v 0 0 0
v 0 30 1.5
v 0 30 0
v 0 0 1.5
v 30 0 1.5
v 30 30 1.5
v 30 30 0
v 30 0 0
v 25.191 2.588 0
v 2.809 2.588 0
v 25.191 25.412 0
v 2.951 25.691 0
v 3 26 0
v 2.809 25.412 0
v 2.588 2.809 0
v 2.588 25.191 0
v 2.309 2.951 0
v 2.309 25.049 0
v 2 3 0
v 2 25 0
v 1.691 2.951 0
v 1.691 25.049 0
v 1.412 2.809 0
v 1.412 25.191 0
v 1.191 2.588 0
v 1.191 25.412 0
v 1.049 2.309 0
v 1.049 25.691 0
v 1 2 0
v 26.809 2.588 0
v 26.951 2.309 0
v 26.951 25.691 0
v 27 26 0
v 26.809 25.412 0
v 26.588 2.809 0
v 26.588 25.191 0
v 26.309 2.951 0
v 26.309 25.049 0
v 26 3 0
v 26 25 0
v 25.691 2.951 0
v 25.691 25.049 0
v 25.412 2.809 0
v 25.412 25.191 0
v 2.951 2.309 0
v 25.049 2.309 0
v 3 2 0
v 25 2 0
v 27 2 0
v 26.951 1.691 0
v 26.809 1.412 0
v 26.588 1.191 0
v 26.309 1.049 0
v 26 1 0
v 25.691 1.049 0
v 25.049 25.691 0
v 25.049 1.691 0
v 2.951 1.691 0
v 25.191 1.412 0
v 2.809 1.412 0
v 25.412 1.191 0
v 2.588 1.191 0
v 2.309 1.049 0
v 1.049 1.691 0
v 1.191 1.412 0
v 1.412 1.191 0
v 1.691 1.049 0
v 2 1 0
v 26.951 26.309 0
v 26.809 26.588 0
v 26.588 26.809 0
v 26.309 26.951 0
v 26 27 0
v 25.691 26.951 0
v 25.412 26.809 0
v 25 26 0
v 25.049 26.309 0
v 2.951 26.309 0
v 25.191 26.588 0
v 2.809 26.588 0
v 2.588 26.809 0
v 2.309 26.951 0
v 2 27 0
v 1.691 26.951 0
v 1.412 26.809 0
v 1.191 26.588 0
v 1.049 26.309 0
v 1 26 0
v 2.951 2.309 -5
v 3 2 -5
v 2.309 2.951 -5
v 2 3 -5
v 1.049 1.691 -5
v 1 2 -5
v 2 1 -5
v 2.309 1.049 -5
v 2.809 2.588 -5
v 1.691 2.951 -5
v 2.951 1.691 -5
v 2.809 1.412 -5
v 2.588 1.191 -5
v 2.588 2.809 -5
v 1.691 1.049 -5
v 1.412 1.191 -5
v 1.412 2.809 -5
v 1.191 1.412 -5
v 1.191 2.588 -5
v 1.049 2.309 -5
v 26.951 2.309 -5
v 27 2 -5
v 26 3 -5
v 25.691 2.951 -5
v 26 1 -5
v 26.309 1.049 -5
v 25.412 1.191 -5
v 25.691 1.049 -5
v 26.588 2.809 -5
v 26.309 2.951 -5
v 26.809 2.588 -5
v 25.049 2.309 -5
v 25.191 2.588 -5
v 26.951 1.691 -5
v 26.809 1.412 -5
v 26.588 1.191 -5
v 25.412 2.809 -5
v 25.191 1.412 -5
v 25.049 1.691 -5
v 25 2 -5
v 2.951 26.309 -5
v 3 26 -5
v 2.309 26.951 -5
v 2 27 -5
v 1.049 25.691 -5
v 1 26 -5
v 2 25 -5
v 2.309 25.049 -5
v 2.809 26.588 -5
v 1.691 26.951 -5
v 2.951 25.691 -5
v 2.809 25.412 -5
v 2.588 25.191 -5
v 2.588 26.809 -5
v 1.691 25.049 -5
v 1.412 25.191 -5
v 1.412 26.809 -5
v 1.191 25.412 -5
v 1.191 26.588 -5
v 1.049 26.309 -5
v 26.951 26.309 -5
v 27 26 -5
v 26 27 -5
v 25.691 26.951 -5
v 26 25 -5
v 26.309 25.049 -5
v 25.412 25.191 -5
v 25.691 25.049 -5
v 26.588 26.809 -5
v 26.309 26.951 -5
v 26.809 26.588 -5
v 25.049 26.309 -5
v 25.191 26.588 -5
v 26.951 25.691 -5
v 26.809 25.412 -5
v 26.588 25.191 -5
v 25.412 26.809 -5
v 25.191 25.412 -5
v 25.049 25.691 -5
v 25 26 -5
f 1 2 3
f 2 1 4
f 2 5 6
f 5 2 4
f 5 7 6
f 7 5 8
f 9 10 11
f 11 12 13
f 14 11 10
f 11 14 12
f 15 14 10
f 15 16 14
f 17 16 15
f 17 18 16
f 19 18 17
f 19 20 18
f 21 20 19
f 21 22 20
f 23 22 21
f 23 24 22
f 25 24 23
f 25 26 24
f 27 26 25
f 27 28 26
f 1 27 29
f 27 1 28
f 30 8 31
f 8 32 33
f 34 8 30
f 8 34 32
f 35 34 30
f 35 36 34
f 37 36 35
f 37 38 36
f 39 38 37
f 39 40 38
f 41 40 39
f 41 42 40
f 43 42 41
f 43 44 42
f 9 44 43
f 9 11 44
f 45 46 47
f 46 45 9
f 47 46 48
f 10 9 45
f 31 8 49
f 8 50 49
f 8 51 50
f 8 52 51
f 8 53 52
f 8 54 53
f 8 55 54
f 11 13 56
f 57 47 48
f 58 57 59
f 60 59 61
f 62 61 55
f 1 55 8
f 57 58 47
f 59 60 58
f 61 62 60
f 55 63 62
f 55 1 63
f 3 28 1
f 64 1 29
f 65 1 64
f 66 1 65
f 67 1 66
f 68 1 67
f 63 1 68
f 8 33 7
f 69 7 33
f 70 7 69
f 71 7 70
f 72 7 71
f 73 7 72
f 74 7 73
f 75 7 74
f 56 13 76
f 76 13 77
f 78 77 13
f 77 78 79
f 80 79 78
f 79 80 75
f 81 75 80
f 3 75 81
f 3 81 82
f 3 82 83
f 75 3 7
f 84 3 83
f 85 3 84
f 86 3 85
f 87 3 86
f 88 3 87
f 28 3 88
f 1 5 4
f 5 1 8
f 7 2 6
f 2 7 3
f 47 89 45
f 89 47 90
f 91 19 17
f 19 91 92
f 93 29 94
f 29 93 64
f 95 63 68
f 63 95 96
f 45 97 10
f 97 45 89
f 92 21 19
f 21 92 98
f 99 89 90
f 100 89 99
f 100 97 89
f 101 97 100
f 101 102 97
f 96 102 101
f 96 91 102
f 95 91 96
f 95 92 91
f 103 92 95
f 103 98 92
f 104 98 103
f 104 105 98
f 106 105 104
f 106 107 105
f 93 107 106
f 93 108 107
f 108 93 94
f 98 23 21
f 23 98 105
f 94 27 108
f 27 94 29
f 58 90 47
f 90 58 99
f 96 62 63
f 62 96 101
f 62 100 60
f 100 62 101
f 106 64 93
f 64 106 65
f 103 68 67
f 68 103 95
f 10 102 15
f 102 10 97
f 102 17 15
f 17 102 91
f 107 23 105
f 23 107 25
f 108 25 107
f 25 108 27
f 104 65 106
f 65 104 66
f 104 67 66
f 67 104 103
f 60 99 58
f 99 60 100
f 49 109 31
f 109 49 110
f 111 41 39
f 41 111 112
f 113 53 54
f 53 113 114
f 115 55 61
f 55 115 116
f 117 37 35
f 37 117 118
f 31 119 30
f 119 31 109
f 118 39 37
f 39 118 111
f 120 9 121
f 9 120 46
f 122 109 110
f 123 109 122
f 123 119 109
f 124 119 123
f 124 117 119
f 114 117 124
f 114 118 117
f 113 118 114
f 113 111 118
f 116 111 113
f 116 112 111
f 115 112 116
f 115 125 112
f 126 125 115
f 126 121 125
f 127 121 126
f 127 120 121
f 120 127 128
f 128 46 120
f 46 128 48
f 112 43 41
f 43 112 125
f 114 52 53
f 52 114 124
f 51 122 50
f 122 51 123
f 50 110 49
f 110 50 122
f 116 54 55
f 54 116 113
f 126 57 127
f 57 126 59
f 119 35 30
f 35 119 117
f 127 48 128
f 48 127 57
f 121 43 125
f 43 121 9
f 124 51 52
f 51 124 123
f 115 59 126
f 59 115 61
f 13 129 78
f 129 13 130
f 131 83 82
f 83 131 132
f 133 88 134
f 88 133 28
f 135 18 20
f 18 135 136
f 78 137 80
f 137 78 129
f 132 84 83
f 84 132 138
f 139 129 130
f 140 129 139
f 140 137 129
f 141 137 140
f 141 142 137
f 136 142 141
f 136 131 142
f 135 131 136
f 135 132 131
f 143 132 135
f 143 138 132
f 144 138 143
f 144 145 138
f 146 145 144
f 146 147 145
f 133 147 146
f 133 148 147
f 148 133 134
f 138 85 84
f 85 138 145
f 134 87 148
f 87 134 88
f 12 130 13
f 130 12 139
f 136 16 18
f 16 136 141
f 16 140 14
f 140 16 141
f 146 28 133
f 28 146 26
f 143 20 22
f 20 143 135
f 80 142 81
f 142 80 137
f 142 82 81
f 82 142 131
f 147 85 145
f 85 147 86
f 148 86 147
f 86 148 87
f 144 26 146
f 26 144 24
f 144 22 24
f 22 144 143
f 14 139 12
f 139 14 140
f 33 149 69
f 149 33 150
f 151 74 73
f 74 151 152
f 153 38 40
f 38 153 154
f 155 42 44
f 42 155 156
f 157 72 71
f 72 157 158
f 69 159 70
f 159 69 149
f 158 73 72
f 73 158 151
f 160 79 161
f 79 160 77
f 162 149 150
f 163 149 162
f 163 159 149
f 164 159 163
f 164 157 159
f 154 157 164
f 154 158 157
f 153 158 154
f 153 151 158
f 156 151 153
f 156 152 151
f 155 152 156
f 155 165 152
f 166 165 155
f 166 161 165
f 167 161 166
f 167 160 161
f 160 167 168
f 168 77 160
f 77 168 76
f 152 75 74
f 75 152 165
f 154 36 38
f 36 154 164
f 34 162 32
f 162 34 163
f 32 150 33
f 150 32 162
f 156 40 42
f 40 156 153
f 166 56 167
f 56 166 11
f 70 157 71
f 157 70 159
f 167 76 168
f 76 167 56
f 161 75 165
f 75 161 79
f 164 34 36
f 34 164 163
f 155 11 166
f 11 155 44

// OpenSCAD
// Coffee Table Base
cube([30, 30, 1.5]);

// Coffee Table Legs
translate([2, 2, -5]) cylinder(h = 5, r1 = 1, r2 = 1, $fn = 20);
translate([26, 2, -5]) cylinder(h = 5, r1 = 1, r2 = 1, $fn = 20);
translate([2, 26, -5]) cylinder(h = 5, r1 = 1, r2 = 1, $fn = 20);
translate([26, 26, -5]) cylinder(h = 5, r1 = 1, r2 = 1, $fn = 20);
